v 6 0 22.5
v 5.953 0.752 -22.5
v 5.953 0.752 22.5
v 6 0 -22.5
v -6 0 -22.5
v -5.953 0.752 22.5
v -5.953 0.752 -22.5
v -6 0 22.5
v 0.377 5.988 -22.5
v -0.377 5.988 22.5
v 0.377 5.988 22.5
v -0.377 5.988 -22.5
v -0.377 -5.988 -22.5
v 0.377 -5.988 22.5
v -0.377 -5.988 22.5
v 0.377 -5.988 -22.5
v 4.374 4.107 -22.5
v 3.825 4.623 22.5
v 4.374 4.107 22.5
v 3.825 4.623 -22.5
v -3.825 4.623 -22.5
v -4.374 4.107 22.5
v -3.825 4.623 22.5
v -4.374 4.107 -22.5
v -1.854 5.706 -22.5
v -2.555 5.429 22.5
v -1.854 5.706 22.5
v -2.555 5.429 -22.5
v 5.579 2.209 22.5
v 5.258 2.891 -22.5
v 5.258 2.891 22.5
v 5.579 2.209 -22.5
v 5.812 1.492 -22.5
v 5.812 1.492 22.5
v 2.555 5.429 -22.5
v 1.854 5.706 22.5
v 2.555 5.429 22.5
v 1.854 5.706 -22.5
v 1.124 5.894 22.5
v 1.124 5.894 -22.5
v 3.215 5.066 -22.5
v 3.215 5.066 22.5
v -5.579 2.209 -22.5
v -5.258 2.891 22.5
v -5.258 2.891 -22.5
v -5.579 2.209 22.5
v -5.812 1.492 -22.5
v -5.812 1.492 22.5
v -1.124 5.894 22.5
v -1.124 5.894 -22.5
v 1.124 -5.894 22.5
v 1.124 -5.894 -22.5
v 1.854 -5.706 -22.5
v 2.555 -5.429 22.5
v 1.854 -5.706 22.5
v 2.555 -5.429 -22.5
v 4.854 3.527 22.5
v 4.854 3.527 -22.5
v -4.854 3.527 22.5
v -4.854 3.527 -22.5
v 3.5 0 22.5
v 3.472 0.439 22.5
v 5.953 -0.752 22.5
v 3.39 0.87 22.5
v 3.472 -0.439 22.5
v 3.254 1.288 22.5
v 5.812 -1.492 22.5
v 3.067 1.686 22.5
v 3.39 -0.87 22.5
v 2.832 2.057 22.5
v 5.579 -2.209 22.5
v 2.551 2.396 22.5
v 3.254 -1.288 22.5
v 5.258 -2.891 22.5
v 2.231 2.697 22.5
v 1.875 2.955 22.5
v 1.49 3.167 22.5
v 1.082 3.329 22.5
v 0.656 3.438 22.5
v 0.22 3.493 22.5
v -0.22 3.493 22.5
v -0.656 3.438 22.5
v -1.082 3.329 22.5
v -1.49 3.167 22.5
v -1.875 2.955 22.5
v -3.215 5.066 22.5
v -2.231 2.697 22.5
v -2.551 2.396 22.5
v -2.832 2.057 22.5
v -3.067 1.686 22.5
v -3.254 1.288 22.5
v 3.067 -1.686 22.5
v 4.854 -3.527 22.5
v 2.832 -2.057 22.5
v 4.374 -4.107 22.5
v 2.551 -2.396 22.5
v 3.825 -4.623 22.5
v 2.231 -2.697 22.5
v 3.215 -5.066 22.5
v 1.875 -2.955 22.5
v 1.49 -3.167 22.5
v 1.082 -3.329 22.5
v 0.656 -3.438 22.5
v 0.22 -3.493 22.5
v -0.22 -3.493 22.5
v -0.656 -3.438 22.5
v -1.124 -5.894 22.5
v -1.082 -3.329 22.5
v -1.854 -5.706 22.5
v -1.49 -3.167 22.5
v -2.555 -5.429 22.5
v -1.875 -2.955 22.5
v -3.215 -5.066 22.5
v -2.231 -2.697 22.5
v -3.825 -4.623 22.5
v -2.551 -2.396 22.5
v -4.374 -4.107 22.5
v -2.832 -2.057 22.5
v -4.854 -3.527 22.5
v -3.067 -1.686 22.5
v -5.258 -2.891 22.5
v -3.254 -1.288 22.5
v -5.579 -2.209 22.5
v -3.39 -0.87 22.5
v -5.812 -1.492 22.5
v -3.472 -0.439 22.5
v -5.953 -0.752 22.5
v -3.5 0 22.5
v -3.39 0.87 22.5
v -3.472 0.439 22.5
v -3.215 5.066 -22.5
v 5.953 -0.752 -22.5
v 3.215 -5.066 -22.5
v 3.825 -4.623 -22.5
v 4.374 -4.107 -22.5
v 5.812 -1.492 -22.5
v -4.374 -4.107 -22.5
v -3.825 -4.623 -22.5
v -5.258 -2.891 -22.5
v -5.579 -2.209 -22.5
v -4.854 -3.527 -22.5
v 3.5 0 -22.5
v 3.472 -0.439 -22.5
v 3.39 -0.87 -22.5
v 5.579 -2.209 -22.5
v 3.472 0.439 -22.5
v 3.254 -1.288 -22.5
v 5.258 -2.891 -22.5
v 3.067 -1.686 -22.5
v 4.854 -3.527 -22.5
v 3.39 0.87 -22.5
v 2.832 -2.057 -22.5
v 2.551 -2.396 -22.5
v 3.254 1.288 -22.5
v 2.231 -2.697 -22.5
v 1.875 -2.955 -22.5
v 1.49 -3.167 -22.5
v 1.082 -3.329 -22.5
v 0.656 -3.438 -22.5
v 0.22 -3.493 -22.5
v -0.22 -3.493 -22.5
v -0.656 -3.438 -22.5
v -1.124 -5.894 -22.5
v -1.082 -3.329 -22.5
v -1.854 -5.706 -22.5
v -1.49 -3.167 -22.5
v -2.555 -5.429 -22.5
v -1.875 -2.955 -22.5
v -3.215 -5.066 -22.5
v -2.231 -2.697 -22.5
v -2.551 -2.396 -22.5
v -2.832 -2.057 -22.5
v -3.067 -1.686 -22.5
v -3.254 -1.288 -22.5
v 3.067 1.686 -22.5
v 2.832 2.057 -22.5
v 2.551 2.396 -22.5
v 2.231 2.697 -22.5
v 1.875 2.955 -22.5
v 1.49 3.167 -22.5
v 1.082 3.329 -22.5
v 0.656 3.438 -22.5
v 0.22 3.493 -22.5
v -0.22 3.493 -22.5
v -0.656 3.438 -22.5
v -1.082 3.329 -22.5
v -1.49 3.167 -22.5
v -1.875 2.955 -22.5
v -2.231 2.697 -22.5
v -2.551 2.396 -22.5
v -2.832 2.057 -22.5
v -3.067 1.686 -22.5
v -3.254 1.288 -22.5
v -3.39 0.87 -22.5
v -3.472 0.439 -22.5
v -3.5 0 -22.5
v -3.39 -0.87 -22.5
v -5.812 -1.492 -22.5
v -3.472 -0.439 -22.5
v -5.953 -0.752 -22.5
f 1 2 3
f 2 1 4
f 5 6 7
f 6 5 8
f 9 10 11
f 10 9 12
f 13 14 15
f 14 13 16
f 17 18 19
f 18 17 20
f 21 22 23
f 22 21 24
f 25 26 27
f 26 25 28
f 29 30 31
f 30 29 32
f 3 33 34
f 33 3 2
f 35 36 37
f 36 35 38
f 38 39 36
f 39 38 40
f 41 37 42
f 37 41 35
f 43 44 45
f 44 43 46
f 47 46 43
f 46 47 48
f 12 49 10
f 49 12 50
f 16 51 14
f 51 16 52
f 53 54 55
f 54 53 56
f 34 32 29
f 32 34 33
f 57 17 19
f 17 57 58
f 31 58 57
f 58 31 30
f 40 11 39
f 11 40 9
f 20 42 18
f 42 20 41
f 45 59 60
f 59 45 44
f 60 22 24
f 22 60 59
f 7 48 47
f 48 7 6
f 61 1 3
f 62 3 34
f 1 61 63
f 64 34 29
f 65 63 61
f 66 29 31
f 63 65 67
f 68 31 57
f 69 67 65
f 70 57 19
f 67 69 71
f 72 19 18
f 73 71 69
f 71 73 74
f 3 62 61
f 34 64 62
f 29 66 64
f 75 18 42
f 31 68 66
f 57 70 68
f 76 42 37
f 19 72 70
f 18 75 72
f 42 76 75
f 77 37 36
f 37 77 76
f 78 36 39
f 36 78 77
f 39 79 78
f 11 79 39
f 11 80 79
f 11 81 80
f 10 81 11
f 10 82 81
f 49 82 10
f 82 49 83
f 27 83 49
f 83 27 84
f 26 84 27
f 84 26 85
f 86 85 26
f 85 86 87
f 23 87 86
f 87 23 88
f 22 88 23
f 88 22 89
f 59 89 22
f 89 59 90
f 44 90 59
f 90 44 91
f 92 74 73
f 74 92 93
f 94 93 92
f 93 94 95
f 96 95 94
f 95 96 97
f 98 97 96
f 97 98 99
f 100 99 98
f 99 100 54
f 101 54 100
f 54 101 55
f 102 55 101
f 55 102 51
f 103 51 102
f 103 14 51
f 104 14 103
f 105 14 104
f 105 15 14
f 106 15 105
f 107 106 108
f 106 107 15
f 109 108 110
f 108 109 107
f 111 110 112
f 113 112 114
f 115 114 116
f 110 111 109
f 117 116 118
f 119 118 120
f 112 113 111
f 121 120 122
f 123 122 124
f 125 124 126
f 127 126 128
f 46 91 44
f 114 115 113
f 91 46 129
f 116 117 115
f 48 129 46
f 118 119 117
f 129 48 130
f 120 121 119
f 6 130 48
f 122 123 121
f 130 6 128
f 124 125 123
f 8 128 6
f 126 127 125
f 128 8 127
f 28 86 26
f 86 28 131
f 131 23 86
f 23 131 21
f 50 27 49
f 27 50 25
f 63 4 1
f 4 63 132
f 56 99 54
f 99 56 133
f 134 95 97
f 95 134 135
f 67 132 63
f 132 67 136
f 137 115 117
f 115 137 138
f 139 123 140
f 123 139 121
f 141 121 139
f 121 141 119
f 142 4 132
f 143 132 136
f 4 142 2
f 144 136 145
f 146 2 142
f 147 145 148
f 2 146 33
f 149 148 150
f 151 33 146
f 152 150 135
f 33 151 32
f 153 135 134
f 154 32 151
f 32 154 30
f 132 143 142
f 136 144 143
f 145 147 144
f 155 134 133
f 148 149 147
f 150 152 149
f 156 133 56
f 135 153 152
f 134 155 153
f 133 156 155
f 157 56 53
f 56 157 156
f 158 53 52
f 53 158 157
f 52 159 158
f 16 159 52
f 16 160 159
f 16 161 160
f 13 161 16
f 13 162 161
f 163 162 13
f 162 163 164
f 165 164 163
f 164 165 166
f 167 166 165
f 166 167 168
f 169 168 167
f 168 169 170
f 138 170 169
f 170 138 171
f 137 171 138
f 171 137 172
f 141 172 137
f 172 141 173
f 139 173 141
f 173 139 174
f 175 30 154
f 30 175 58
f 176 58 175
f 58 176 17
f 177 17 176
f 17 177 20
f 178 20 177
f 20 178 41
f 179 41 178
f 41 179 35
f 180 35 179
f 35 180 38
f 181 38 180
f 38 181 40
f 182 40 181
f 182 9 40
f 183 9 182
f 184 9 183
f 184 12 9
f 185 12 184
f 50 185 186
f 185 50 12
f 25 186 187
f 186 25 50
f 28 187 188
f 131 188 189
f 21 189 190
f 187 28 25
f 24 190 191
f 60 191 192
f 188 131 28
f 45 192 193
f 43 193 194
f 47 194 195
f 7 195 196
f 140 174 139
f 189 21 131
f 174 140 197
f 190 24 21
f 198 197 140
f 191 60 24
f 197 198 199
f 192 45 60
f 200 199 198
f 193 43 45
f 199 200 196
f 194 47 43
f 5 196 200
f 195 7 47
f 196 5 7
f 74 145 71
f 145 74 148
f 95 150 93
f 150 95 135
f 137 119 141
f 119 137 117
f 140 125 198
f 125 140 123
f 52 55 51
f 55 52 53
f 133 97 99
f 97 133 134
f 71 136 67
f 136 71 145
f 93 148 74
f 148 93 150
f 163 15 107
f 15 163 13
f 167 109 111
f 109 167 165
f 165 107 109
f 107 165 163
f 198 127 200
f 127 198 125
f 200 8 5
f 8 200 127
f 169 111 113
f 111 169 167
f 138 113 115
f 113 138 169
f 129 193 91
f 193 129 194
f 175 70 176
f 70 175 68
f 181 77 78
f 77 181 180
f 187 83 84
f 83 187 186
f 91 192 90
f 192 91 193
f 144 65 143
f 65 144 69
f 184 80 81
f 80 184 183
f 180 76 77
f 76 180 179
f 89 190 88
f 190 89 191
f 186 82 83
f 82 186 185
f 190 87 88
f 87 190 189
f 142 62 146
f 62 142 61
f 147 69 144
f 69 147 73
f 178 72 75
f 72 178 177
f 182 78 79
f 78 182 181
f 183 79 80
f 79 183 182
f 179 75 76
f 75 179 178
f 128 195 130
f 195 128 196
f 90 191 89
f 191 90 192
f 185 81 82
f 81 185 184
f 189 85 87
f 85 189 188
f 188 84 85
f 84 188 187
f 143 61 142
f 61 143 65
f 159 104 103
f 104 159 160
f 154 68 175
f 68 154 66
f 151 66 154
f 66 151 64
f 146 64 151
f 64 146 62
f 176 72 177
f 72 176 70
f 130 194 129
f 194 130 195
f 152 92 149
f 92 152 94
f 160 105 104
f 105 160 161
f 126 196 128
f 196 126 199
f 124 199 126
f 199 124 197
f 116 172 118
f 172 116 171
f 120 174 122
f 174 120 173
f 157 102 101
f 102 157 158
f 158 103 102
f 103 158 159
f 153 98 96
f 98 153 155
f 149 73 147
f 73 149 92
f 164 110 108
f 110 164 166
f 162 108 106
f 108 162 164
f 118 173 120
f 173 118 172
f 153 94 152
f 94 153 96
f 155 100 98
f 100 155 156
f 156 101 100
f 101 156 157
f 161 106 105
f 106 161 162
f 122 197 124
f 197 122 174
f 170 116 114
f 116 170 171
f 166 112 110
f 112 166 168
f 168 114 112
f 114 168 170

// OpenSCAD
$fn = 50;


difference() {
	union() {
		translate(v = [0, 0, -22.5000000000]) {
			cylinder(h = 45, r = 6.0000000000);
		}
	}
	union() {
		translate(v = [0, 0, -100.0000000000]) {
			cylinder(h = 200, r = 3.5000000000);
		}
	}
}
